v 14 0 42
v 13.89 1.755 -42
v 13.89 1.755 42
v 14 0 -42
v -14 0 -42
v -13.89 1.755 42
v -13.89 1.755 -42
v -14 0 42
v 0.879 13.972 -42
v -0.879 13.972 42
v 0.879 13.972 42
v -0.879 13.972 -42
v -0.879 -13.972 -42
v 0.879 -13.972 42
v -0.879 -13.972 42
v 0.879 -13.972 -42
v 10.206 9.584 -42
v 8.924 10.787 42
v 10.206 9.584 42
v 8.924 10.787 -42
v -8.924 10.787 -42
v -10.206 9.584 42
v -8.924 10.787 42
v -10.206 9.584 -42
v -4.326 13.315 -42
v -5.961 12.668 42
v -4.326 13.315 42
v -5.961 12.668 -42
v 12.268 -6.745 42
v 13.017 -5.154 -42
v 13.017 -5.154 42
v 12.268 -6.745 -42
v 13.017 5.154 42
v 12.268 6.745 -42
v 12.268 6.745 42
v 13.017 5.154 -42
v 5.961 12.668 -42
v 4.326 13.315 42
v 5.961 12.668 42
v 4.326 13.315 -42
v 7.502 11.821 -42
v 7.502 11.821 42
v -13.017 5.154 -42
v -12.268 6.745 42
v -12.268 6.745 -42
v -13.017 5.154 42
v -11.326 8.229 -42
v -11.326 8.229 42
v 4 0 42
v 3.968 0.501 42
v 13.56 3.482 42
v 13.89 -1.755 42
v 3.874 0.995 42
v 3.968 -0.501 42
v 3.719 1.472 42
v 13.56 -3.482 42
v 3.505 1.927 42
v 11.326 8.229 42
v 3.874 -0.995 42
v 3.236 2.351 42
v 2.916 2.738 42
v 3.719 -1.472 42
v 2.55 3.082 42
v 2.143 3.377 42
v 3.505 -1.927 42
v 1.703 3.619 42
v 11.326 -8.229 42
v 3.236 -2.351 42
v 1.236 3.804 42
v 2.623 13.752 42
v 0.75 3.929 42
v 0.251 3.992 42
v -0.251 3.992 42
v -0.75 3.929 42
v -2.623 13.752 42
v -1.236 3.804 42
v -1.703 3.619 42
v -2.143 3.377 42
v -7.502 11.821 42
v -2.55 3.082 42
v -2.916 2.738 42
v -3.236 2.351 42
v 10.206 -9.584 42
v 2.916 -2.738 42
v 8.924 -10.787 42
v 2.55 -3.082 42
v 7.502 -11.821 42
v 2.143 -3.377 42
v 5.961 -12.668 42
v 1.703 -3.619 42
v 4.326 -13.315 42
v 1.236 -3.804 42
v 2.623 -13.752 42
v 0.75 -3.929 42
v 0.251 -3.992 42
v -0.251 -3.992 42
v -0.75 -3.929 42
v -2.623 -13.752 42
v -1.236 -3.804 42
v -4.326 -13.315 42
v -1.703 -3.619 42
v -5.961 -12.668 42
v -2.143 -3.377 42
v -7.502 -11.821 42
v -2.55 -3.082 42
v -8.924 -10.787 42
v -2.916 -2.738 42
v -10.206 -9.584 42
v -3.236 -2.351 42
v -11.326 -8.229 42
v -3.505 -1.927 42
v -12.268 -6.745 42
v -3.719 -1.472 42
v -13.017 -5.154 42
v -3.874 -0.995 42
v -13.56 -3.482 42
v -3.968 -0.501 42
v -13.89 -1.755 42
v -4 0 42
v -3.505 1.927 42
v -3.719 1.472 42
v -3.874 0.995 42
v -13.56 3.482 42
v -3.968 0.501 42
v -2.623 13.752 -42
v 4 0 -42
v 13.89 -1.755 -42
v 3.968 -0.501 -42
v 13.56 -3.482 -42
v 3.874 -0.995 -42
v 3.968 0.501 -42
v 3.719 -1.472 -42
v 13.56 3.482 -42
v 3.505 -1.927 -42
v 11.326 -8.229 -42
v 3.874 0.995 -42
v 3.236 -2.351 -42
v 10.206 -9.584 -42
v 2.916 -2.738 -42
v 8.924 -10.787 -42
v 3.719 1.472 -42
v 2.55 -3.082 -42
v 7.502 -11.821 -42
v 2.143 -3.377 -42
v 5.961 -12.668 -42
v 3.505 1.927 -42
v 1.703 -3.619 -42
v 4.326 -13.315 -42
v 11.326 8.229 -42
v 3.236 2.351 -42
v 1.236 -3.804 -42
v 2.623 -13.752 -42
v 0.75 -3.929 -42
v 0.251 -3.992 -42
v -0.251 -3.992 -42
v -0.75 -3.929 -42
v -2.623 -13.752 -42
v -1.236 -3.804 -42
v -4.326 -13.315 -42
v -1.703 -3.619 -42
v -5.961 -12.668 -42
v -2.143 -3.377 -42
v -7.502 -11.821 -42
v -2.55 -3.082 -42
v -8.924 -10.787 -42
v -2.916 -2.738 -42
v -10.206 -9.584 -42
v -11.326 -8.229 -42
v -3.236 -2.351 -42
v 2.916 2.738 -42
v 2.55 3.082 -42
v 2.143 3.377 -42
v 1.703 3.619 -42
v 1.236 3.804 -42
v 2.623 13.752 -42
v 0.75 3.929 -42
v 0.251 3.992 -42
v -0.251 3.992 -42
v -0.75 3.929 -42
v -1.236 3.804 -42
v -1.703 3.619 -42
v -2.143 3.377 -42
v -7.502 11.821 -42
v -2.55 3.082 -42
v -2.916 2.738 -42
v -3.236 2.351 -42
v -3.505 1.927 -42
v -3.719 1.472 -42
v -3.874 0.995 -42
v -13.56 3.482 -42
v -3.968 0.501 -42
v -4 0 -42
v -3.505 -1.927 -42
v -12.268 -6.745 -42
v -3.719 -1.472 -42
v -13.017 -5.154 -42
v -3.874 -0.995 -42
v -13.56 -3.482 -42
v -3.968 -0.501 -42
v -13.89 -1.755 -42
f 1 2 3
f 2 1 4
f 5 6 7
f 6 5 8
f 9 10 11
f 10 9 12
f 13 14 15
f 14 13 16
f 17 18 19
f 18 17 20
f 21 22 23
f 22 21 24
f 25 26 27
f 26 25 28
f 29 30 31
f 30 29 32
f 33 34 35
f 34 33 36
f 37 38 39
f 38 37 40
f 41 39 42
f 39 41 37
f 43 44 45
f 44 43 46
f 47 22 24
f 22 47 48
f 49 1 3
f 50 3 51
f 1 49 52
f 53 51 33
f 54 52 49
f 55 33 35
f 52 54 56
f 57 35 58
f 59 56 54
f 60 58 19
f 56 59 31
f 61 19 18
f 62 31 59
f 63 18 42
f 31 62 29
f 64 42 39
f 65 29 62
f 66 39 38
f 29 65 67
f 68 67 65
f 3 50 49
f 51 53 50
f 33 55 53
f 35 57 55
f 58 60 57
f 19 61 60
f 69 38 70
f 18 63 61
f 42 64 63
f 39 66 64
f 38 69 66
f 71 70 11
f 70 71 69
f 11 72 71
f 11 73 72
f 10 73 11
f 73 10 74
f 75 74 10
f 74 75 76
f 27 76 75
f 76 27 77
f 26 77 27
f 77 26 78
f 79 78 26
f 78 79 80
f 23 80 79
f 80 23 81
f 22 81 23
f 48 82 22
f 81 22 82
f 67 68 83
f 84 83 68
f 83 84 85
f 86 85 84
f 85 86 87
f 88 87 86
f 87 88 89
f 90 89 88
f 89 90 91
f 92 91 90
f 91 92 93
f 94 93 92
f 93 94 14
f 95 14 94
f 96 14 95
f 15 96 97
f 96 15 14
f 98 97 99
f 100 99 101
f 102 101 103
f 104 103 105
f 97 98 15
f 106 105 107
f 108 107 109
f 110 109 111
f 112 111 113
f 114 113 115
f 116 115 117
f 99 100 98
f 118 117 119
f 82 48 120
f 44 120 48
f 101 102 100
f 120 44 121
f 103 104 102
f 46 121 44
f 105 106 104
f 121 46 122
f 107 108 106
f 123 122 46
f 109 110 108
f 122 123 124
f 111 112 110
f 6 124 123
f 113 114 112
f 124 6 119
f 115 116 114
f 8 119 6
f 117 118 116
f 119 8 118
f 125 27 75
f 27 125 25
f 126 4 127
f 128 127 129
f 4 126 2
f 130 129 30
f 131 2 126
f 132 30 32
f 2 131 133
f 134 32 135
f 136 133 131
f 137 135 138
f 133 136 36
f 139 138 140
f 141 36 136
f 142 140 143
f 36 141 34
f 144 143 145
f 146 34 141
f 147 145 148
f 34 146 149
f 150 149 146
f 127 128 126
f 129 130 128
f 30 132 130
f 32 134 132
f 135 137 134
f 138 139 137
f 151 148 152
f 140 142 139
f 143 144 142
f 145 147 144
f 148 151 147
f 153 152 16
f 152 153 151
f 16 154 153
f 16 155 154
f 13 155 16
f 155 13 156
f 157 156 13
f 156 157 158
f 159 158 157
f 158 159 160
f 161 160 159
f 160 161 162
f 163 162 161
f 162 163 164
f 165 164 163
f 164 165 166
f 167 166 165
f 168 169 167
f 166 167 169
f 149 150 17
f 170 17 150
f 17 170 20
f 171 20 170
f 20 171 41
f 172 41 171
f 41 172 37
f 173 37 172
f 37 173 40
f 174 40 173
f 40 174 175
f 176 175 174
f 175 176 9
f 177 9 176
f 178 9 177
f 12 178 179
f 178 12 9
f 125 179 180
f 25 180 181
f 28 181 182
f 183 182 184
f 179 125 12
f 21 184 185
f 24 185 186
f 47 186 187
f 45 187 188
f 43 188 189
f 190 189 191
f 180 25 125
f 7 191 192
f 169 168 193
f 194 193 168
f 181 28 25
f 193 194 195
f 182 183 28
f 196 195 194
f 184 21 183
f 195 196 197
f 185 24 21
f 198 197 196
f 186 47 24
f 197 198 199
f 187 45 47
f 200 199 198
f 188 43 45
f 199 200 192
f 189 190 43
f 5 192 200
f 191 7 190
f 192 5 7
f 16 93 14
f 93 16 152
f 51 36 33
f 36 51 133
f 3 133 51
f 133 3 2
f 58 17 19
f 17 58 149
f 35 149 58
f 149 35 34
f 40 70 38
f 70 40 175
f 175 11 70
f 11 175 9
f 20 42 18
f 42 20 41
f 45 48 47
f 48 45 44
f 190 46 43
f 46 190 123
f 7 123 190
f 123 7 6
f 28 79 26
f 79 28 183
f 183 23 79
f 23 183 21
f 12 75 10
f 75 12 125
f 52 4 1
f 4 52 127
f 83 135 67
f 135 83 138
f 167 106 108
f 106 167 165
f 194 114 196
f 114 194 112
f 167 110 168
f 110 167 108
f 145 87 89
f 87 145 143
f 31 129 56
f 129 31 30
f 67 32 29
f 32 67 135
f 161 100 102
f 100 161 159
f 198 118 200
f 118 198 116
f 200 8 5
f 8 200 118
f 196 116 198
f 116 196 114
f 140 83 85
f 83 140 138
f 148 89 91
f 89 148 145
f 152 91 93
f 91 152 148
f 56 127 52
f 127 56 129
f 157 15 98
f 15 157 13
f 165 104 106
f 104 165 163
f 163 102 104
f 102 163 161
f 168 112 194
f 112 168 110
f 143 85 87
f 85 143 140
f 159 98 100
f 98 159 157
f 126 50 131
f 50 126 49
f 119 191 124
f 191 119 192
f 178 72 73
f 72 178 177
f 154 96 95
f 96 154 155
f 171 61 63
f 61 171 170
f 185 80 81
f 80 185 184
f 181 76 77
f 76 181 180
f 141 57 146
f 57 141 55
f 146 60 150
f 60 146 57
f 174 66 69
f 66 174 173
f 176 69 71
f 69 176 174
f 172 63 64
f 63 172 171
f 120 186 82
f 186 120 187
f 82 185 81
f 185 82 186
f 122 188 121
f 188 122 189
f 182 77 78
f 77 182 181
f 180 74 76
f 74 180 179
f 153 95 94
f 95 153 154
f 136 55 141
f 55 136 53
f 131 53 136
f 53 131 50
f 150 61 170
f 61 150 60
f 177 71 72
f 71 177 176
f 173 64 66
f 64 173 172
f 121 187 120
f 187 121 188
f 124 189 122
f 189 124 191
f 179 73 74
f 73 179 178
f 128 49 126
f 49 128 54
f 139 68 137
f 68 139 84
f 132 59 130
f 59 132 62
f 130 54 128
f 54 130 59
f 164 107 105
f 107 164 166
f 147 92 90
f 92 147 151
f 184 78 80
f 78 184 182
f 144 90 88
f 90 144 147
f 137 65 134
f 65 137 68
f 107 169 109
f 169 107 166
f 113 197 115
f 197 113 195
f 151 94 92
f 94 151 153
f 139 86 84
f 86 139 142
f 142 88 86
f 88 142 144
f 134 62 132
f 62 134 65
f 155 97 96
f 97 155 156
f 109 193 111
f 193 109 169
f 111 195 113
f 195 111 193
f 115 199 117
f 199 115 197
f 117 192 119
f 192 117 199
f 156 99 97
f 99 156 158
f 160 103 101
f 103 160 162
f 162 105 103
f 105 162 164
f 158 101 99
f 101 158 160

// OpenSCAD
$fn = 50;


difference() {
	union() {
		translate(v = [0, 0, -42.0000000000]) {
			cylinder(h = 84, r = 14.0000000000);
		}
	}
	union() {
		translate(v = [0, 0, -100.0000000000]) {
			cylinder(h = 200, r = 4.0000000000);
		}
	}
}
